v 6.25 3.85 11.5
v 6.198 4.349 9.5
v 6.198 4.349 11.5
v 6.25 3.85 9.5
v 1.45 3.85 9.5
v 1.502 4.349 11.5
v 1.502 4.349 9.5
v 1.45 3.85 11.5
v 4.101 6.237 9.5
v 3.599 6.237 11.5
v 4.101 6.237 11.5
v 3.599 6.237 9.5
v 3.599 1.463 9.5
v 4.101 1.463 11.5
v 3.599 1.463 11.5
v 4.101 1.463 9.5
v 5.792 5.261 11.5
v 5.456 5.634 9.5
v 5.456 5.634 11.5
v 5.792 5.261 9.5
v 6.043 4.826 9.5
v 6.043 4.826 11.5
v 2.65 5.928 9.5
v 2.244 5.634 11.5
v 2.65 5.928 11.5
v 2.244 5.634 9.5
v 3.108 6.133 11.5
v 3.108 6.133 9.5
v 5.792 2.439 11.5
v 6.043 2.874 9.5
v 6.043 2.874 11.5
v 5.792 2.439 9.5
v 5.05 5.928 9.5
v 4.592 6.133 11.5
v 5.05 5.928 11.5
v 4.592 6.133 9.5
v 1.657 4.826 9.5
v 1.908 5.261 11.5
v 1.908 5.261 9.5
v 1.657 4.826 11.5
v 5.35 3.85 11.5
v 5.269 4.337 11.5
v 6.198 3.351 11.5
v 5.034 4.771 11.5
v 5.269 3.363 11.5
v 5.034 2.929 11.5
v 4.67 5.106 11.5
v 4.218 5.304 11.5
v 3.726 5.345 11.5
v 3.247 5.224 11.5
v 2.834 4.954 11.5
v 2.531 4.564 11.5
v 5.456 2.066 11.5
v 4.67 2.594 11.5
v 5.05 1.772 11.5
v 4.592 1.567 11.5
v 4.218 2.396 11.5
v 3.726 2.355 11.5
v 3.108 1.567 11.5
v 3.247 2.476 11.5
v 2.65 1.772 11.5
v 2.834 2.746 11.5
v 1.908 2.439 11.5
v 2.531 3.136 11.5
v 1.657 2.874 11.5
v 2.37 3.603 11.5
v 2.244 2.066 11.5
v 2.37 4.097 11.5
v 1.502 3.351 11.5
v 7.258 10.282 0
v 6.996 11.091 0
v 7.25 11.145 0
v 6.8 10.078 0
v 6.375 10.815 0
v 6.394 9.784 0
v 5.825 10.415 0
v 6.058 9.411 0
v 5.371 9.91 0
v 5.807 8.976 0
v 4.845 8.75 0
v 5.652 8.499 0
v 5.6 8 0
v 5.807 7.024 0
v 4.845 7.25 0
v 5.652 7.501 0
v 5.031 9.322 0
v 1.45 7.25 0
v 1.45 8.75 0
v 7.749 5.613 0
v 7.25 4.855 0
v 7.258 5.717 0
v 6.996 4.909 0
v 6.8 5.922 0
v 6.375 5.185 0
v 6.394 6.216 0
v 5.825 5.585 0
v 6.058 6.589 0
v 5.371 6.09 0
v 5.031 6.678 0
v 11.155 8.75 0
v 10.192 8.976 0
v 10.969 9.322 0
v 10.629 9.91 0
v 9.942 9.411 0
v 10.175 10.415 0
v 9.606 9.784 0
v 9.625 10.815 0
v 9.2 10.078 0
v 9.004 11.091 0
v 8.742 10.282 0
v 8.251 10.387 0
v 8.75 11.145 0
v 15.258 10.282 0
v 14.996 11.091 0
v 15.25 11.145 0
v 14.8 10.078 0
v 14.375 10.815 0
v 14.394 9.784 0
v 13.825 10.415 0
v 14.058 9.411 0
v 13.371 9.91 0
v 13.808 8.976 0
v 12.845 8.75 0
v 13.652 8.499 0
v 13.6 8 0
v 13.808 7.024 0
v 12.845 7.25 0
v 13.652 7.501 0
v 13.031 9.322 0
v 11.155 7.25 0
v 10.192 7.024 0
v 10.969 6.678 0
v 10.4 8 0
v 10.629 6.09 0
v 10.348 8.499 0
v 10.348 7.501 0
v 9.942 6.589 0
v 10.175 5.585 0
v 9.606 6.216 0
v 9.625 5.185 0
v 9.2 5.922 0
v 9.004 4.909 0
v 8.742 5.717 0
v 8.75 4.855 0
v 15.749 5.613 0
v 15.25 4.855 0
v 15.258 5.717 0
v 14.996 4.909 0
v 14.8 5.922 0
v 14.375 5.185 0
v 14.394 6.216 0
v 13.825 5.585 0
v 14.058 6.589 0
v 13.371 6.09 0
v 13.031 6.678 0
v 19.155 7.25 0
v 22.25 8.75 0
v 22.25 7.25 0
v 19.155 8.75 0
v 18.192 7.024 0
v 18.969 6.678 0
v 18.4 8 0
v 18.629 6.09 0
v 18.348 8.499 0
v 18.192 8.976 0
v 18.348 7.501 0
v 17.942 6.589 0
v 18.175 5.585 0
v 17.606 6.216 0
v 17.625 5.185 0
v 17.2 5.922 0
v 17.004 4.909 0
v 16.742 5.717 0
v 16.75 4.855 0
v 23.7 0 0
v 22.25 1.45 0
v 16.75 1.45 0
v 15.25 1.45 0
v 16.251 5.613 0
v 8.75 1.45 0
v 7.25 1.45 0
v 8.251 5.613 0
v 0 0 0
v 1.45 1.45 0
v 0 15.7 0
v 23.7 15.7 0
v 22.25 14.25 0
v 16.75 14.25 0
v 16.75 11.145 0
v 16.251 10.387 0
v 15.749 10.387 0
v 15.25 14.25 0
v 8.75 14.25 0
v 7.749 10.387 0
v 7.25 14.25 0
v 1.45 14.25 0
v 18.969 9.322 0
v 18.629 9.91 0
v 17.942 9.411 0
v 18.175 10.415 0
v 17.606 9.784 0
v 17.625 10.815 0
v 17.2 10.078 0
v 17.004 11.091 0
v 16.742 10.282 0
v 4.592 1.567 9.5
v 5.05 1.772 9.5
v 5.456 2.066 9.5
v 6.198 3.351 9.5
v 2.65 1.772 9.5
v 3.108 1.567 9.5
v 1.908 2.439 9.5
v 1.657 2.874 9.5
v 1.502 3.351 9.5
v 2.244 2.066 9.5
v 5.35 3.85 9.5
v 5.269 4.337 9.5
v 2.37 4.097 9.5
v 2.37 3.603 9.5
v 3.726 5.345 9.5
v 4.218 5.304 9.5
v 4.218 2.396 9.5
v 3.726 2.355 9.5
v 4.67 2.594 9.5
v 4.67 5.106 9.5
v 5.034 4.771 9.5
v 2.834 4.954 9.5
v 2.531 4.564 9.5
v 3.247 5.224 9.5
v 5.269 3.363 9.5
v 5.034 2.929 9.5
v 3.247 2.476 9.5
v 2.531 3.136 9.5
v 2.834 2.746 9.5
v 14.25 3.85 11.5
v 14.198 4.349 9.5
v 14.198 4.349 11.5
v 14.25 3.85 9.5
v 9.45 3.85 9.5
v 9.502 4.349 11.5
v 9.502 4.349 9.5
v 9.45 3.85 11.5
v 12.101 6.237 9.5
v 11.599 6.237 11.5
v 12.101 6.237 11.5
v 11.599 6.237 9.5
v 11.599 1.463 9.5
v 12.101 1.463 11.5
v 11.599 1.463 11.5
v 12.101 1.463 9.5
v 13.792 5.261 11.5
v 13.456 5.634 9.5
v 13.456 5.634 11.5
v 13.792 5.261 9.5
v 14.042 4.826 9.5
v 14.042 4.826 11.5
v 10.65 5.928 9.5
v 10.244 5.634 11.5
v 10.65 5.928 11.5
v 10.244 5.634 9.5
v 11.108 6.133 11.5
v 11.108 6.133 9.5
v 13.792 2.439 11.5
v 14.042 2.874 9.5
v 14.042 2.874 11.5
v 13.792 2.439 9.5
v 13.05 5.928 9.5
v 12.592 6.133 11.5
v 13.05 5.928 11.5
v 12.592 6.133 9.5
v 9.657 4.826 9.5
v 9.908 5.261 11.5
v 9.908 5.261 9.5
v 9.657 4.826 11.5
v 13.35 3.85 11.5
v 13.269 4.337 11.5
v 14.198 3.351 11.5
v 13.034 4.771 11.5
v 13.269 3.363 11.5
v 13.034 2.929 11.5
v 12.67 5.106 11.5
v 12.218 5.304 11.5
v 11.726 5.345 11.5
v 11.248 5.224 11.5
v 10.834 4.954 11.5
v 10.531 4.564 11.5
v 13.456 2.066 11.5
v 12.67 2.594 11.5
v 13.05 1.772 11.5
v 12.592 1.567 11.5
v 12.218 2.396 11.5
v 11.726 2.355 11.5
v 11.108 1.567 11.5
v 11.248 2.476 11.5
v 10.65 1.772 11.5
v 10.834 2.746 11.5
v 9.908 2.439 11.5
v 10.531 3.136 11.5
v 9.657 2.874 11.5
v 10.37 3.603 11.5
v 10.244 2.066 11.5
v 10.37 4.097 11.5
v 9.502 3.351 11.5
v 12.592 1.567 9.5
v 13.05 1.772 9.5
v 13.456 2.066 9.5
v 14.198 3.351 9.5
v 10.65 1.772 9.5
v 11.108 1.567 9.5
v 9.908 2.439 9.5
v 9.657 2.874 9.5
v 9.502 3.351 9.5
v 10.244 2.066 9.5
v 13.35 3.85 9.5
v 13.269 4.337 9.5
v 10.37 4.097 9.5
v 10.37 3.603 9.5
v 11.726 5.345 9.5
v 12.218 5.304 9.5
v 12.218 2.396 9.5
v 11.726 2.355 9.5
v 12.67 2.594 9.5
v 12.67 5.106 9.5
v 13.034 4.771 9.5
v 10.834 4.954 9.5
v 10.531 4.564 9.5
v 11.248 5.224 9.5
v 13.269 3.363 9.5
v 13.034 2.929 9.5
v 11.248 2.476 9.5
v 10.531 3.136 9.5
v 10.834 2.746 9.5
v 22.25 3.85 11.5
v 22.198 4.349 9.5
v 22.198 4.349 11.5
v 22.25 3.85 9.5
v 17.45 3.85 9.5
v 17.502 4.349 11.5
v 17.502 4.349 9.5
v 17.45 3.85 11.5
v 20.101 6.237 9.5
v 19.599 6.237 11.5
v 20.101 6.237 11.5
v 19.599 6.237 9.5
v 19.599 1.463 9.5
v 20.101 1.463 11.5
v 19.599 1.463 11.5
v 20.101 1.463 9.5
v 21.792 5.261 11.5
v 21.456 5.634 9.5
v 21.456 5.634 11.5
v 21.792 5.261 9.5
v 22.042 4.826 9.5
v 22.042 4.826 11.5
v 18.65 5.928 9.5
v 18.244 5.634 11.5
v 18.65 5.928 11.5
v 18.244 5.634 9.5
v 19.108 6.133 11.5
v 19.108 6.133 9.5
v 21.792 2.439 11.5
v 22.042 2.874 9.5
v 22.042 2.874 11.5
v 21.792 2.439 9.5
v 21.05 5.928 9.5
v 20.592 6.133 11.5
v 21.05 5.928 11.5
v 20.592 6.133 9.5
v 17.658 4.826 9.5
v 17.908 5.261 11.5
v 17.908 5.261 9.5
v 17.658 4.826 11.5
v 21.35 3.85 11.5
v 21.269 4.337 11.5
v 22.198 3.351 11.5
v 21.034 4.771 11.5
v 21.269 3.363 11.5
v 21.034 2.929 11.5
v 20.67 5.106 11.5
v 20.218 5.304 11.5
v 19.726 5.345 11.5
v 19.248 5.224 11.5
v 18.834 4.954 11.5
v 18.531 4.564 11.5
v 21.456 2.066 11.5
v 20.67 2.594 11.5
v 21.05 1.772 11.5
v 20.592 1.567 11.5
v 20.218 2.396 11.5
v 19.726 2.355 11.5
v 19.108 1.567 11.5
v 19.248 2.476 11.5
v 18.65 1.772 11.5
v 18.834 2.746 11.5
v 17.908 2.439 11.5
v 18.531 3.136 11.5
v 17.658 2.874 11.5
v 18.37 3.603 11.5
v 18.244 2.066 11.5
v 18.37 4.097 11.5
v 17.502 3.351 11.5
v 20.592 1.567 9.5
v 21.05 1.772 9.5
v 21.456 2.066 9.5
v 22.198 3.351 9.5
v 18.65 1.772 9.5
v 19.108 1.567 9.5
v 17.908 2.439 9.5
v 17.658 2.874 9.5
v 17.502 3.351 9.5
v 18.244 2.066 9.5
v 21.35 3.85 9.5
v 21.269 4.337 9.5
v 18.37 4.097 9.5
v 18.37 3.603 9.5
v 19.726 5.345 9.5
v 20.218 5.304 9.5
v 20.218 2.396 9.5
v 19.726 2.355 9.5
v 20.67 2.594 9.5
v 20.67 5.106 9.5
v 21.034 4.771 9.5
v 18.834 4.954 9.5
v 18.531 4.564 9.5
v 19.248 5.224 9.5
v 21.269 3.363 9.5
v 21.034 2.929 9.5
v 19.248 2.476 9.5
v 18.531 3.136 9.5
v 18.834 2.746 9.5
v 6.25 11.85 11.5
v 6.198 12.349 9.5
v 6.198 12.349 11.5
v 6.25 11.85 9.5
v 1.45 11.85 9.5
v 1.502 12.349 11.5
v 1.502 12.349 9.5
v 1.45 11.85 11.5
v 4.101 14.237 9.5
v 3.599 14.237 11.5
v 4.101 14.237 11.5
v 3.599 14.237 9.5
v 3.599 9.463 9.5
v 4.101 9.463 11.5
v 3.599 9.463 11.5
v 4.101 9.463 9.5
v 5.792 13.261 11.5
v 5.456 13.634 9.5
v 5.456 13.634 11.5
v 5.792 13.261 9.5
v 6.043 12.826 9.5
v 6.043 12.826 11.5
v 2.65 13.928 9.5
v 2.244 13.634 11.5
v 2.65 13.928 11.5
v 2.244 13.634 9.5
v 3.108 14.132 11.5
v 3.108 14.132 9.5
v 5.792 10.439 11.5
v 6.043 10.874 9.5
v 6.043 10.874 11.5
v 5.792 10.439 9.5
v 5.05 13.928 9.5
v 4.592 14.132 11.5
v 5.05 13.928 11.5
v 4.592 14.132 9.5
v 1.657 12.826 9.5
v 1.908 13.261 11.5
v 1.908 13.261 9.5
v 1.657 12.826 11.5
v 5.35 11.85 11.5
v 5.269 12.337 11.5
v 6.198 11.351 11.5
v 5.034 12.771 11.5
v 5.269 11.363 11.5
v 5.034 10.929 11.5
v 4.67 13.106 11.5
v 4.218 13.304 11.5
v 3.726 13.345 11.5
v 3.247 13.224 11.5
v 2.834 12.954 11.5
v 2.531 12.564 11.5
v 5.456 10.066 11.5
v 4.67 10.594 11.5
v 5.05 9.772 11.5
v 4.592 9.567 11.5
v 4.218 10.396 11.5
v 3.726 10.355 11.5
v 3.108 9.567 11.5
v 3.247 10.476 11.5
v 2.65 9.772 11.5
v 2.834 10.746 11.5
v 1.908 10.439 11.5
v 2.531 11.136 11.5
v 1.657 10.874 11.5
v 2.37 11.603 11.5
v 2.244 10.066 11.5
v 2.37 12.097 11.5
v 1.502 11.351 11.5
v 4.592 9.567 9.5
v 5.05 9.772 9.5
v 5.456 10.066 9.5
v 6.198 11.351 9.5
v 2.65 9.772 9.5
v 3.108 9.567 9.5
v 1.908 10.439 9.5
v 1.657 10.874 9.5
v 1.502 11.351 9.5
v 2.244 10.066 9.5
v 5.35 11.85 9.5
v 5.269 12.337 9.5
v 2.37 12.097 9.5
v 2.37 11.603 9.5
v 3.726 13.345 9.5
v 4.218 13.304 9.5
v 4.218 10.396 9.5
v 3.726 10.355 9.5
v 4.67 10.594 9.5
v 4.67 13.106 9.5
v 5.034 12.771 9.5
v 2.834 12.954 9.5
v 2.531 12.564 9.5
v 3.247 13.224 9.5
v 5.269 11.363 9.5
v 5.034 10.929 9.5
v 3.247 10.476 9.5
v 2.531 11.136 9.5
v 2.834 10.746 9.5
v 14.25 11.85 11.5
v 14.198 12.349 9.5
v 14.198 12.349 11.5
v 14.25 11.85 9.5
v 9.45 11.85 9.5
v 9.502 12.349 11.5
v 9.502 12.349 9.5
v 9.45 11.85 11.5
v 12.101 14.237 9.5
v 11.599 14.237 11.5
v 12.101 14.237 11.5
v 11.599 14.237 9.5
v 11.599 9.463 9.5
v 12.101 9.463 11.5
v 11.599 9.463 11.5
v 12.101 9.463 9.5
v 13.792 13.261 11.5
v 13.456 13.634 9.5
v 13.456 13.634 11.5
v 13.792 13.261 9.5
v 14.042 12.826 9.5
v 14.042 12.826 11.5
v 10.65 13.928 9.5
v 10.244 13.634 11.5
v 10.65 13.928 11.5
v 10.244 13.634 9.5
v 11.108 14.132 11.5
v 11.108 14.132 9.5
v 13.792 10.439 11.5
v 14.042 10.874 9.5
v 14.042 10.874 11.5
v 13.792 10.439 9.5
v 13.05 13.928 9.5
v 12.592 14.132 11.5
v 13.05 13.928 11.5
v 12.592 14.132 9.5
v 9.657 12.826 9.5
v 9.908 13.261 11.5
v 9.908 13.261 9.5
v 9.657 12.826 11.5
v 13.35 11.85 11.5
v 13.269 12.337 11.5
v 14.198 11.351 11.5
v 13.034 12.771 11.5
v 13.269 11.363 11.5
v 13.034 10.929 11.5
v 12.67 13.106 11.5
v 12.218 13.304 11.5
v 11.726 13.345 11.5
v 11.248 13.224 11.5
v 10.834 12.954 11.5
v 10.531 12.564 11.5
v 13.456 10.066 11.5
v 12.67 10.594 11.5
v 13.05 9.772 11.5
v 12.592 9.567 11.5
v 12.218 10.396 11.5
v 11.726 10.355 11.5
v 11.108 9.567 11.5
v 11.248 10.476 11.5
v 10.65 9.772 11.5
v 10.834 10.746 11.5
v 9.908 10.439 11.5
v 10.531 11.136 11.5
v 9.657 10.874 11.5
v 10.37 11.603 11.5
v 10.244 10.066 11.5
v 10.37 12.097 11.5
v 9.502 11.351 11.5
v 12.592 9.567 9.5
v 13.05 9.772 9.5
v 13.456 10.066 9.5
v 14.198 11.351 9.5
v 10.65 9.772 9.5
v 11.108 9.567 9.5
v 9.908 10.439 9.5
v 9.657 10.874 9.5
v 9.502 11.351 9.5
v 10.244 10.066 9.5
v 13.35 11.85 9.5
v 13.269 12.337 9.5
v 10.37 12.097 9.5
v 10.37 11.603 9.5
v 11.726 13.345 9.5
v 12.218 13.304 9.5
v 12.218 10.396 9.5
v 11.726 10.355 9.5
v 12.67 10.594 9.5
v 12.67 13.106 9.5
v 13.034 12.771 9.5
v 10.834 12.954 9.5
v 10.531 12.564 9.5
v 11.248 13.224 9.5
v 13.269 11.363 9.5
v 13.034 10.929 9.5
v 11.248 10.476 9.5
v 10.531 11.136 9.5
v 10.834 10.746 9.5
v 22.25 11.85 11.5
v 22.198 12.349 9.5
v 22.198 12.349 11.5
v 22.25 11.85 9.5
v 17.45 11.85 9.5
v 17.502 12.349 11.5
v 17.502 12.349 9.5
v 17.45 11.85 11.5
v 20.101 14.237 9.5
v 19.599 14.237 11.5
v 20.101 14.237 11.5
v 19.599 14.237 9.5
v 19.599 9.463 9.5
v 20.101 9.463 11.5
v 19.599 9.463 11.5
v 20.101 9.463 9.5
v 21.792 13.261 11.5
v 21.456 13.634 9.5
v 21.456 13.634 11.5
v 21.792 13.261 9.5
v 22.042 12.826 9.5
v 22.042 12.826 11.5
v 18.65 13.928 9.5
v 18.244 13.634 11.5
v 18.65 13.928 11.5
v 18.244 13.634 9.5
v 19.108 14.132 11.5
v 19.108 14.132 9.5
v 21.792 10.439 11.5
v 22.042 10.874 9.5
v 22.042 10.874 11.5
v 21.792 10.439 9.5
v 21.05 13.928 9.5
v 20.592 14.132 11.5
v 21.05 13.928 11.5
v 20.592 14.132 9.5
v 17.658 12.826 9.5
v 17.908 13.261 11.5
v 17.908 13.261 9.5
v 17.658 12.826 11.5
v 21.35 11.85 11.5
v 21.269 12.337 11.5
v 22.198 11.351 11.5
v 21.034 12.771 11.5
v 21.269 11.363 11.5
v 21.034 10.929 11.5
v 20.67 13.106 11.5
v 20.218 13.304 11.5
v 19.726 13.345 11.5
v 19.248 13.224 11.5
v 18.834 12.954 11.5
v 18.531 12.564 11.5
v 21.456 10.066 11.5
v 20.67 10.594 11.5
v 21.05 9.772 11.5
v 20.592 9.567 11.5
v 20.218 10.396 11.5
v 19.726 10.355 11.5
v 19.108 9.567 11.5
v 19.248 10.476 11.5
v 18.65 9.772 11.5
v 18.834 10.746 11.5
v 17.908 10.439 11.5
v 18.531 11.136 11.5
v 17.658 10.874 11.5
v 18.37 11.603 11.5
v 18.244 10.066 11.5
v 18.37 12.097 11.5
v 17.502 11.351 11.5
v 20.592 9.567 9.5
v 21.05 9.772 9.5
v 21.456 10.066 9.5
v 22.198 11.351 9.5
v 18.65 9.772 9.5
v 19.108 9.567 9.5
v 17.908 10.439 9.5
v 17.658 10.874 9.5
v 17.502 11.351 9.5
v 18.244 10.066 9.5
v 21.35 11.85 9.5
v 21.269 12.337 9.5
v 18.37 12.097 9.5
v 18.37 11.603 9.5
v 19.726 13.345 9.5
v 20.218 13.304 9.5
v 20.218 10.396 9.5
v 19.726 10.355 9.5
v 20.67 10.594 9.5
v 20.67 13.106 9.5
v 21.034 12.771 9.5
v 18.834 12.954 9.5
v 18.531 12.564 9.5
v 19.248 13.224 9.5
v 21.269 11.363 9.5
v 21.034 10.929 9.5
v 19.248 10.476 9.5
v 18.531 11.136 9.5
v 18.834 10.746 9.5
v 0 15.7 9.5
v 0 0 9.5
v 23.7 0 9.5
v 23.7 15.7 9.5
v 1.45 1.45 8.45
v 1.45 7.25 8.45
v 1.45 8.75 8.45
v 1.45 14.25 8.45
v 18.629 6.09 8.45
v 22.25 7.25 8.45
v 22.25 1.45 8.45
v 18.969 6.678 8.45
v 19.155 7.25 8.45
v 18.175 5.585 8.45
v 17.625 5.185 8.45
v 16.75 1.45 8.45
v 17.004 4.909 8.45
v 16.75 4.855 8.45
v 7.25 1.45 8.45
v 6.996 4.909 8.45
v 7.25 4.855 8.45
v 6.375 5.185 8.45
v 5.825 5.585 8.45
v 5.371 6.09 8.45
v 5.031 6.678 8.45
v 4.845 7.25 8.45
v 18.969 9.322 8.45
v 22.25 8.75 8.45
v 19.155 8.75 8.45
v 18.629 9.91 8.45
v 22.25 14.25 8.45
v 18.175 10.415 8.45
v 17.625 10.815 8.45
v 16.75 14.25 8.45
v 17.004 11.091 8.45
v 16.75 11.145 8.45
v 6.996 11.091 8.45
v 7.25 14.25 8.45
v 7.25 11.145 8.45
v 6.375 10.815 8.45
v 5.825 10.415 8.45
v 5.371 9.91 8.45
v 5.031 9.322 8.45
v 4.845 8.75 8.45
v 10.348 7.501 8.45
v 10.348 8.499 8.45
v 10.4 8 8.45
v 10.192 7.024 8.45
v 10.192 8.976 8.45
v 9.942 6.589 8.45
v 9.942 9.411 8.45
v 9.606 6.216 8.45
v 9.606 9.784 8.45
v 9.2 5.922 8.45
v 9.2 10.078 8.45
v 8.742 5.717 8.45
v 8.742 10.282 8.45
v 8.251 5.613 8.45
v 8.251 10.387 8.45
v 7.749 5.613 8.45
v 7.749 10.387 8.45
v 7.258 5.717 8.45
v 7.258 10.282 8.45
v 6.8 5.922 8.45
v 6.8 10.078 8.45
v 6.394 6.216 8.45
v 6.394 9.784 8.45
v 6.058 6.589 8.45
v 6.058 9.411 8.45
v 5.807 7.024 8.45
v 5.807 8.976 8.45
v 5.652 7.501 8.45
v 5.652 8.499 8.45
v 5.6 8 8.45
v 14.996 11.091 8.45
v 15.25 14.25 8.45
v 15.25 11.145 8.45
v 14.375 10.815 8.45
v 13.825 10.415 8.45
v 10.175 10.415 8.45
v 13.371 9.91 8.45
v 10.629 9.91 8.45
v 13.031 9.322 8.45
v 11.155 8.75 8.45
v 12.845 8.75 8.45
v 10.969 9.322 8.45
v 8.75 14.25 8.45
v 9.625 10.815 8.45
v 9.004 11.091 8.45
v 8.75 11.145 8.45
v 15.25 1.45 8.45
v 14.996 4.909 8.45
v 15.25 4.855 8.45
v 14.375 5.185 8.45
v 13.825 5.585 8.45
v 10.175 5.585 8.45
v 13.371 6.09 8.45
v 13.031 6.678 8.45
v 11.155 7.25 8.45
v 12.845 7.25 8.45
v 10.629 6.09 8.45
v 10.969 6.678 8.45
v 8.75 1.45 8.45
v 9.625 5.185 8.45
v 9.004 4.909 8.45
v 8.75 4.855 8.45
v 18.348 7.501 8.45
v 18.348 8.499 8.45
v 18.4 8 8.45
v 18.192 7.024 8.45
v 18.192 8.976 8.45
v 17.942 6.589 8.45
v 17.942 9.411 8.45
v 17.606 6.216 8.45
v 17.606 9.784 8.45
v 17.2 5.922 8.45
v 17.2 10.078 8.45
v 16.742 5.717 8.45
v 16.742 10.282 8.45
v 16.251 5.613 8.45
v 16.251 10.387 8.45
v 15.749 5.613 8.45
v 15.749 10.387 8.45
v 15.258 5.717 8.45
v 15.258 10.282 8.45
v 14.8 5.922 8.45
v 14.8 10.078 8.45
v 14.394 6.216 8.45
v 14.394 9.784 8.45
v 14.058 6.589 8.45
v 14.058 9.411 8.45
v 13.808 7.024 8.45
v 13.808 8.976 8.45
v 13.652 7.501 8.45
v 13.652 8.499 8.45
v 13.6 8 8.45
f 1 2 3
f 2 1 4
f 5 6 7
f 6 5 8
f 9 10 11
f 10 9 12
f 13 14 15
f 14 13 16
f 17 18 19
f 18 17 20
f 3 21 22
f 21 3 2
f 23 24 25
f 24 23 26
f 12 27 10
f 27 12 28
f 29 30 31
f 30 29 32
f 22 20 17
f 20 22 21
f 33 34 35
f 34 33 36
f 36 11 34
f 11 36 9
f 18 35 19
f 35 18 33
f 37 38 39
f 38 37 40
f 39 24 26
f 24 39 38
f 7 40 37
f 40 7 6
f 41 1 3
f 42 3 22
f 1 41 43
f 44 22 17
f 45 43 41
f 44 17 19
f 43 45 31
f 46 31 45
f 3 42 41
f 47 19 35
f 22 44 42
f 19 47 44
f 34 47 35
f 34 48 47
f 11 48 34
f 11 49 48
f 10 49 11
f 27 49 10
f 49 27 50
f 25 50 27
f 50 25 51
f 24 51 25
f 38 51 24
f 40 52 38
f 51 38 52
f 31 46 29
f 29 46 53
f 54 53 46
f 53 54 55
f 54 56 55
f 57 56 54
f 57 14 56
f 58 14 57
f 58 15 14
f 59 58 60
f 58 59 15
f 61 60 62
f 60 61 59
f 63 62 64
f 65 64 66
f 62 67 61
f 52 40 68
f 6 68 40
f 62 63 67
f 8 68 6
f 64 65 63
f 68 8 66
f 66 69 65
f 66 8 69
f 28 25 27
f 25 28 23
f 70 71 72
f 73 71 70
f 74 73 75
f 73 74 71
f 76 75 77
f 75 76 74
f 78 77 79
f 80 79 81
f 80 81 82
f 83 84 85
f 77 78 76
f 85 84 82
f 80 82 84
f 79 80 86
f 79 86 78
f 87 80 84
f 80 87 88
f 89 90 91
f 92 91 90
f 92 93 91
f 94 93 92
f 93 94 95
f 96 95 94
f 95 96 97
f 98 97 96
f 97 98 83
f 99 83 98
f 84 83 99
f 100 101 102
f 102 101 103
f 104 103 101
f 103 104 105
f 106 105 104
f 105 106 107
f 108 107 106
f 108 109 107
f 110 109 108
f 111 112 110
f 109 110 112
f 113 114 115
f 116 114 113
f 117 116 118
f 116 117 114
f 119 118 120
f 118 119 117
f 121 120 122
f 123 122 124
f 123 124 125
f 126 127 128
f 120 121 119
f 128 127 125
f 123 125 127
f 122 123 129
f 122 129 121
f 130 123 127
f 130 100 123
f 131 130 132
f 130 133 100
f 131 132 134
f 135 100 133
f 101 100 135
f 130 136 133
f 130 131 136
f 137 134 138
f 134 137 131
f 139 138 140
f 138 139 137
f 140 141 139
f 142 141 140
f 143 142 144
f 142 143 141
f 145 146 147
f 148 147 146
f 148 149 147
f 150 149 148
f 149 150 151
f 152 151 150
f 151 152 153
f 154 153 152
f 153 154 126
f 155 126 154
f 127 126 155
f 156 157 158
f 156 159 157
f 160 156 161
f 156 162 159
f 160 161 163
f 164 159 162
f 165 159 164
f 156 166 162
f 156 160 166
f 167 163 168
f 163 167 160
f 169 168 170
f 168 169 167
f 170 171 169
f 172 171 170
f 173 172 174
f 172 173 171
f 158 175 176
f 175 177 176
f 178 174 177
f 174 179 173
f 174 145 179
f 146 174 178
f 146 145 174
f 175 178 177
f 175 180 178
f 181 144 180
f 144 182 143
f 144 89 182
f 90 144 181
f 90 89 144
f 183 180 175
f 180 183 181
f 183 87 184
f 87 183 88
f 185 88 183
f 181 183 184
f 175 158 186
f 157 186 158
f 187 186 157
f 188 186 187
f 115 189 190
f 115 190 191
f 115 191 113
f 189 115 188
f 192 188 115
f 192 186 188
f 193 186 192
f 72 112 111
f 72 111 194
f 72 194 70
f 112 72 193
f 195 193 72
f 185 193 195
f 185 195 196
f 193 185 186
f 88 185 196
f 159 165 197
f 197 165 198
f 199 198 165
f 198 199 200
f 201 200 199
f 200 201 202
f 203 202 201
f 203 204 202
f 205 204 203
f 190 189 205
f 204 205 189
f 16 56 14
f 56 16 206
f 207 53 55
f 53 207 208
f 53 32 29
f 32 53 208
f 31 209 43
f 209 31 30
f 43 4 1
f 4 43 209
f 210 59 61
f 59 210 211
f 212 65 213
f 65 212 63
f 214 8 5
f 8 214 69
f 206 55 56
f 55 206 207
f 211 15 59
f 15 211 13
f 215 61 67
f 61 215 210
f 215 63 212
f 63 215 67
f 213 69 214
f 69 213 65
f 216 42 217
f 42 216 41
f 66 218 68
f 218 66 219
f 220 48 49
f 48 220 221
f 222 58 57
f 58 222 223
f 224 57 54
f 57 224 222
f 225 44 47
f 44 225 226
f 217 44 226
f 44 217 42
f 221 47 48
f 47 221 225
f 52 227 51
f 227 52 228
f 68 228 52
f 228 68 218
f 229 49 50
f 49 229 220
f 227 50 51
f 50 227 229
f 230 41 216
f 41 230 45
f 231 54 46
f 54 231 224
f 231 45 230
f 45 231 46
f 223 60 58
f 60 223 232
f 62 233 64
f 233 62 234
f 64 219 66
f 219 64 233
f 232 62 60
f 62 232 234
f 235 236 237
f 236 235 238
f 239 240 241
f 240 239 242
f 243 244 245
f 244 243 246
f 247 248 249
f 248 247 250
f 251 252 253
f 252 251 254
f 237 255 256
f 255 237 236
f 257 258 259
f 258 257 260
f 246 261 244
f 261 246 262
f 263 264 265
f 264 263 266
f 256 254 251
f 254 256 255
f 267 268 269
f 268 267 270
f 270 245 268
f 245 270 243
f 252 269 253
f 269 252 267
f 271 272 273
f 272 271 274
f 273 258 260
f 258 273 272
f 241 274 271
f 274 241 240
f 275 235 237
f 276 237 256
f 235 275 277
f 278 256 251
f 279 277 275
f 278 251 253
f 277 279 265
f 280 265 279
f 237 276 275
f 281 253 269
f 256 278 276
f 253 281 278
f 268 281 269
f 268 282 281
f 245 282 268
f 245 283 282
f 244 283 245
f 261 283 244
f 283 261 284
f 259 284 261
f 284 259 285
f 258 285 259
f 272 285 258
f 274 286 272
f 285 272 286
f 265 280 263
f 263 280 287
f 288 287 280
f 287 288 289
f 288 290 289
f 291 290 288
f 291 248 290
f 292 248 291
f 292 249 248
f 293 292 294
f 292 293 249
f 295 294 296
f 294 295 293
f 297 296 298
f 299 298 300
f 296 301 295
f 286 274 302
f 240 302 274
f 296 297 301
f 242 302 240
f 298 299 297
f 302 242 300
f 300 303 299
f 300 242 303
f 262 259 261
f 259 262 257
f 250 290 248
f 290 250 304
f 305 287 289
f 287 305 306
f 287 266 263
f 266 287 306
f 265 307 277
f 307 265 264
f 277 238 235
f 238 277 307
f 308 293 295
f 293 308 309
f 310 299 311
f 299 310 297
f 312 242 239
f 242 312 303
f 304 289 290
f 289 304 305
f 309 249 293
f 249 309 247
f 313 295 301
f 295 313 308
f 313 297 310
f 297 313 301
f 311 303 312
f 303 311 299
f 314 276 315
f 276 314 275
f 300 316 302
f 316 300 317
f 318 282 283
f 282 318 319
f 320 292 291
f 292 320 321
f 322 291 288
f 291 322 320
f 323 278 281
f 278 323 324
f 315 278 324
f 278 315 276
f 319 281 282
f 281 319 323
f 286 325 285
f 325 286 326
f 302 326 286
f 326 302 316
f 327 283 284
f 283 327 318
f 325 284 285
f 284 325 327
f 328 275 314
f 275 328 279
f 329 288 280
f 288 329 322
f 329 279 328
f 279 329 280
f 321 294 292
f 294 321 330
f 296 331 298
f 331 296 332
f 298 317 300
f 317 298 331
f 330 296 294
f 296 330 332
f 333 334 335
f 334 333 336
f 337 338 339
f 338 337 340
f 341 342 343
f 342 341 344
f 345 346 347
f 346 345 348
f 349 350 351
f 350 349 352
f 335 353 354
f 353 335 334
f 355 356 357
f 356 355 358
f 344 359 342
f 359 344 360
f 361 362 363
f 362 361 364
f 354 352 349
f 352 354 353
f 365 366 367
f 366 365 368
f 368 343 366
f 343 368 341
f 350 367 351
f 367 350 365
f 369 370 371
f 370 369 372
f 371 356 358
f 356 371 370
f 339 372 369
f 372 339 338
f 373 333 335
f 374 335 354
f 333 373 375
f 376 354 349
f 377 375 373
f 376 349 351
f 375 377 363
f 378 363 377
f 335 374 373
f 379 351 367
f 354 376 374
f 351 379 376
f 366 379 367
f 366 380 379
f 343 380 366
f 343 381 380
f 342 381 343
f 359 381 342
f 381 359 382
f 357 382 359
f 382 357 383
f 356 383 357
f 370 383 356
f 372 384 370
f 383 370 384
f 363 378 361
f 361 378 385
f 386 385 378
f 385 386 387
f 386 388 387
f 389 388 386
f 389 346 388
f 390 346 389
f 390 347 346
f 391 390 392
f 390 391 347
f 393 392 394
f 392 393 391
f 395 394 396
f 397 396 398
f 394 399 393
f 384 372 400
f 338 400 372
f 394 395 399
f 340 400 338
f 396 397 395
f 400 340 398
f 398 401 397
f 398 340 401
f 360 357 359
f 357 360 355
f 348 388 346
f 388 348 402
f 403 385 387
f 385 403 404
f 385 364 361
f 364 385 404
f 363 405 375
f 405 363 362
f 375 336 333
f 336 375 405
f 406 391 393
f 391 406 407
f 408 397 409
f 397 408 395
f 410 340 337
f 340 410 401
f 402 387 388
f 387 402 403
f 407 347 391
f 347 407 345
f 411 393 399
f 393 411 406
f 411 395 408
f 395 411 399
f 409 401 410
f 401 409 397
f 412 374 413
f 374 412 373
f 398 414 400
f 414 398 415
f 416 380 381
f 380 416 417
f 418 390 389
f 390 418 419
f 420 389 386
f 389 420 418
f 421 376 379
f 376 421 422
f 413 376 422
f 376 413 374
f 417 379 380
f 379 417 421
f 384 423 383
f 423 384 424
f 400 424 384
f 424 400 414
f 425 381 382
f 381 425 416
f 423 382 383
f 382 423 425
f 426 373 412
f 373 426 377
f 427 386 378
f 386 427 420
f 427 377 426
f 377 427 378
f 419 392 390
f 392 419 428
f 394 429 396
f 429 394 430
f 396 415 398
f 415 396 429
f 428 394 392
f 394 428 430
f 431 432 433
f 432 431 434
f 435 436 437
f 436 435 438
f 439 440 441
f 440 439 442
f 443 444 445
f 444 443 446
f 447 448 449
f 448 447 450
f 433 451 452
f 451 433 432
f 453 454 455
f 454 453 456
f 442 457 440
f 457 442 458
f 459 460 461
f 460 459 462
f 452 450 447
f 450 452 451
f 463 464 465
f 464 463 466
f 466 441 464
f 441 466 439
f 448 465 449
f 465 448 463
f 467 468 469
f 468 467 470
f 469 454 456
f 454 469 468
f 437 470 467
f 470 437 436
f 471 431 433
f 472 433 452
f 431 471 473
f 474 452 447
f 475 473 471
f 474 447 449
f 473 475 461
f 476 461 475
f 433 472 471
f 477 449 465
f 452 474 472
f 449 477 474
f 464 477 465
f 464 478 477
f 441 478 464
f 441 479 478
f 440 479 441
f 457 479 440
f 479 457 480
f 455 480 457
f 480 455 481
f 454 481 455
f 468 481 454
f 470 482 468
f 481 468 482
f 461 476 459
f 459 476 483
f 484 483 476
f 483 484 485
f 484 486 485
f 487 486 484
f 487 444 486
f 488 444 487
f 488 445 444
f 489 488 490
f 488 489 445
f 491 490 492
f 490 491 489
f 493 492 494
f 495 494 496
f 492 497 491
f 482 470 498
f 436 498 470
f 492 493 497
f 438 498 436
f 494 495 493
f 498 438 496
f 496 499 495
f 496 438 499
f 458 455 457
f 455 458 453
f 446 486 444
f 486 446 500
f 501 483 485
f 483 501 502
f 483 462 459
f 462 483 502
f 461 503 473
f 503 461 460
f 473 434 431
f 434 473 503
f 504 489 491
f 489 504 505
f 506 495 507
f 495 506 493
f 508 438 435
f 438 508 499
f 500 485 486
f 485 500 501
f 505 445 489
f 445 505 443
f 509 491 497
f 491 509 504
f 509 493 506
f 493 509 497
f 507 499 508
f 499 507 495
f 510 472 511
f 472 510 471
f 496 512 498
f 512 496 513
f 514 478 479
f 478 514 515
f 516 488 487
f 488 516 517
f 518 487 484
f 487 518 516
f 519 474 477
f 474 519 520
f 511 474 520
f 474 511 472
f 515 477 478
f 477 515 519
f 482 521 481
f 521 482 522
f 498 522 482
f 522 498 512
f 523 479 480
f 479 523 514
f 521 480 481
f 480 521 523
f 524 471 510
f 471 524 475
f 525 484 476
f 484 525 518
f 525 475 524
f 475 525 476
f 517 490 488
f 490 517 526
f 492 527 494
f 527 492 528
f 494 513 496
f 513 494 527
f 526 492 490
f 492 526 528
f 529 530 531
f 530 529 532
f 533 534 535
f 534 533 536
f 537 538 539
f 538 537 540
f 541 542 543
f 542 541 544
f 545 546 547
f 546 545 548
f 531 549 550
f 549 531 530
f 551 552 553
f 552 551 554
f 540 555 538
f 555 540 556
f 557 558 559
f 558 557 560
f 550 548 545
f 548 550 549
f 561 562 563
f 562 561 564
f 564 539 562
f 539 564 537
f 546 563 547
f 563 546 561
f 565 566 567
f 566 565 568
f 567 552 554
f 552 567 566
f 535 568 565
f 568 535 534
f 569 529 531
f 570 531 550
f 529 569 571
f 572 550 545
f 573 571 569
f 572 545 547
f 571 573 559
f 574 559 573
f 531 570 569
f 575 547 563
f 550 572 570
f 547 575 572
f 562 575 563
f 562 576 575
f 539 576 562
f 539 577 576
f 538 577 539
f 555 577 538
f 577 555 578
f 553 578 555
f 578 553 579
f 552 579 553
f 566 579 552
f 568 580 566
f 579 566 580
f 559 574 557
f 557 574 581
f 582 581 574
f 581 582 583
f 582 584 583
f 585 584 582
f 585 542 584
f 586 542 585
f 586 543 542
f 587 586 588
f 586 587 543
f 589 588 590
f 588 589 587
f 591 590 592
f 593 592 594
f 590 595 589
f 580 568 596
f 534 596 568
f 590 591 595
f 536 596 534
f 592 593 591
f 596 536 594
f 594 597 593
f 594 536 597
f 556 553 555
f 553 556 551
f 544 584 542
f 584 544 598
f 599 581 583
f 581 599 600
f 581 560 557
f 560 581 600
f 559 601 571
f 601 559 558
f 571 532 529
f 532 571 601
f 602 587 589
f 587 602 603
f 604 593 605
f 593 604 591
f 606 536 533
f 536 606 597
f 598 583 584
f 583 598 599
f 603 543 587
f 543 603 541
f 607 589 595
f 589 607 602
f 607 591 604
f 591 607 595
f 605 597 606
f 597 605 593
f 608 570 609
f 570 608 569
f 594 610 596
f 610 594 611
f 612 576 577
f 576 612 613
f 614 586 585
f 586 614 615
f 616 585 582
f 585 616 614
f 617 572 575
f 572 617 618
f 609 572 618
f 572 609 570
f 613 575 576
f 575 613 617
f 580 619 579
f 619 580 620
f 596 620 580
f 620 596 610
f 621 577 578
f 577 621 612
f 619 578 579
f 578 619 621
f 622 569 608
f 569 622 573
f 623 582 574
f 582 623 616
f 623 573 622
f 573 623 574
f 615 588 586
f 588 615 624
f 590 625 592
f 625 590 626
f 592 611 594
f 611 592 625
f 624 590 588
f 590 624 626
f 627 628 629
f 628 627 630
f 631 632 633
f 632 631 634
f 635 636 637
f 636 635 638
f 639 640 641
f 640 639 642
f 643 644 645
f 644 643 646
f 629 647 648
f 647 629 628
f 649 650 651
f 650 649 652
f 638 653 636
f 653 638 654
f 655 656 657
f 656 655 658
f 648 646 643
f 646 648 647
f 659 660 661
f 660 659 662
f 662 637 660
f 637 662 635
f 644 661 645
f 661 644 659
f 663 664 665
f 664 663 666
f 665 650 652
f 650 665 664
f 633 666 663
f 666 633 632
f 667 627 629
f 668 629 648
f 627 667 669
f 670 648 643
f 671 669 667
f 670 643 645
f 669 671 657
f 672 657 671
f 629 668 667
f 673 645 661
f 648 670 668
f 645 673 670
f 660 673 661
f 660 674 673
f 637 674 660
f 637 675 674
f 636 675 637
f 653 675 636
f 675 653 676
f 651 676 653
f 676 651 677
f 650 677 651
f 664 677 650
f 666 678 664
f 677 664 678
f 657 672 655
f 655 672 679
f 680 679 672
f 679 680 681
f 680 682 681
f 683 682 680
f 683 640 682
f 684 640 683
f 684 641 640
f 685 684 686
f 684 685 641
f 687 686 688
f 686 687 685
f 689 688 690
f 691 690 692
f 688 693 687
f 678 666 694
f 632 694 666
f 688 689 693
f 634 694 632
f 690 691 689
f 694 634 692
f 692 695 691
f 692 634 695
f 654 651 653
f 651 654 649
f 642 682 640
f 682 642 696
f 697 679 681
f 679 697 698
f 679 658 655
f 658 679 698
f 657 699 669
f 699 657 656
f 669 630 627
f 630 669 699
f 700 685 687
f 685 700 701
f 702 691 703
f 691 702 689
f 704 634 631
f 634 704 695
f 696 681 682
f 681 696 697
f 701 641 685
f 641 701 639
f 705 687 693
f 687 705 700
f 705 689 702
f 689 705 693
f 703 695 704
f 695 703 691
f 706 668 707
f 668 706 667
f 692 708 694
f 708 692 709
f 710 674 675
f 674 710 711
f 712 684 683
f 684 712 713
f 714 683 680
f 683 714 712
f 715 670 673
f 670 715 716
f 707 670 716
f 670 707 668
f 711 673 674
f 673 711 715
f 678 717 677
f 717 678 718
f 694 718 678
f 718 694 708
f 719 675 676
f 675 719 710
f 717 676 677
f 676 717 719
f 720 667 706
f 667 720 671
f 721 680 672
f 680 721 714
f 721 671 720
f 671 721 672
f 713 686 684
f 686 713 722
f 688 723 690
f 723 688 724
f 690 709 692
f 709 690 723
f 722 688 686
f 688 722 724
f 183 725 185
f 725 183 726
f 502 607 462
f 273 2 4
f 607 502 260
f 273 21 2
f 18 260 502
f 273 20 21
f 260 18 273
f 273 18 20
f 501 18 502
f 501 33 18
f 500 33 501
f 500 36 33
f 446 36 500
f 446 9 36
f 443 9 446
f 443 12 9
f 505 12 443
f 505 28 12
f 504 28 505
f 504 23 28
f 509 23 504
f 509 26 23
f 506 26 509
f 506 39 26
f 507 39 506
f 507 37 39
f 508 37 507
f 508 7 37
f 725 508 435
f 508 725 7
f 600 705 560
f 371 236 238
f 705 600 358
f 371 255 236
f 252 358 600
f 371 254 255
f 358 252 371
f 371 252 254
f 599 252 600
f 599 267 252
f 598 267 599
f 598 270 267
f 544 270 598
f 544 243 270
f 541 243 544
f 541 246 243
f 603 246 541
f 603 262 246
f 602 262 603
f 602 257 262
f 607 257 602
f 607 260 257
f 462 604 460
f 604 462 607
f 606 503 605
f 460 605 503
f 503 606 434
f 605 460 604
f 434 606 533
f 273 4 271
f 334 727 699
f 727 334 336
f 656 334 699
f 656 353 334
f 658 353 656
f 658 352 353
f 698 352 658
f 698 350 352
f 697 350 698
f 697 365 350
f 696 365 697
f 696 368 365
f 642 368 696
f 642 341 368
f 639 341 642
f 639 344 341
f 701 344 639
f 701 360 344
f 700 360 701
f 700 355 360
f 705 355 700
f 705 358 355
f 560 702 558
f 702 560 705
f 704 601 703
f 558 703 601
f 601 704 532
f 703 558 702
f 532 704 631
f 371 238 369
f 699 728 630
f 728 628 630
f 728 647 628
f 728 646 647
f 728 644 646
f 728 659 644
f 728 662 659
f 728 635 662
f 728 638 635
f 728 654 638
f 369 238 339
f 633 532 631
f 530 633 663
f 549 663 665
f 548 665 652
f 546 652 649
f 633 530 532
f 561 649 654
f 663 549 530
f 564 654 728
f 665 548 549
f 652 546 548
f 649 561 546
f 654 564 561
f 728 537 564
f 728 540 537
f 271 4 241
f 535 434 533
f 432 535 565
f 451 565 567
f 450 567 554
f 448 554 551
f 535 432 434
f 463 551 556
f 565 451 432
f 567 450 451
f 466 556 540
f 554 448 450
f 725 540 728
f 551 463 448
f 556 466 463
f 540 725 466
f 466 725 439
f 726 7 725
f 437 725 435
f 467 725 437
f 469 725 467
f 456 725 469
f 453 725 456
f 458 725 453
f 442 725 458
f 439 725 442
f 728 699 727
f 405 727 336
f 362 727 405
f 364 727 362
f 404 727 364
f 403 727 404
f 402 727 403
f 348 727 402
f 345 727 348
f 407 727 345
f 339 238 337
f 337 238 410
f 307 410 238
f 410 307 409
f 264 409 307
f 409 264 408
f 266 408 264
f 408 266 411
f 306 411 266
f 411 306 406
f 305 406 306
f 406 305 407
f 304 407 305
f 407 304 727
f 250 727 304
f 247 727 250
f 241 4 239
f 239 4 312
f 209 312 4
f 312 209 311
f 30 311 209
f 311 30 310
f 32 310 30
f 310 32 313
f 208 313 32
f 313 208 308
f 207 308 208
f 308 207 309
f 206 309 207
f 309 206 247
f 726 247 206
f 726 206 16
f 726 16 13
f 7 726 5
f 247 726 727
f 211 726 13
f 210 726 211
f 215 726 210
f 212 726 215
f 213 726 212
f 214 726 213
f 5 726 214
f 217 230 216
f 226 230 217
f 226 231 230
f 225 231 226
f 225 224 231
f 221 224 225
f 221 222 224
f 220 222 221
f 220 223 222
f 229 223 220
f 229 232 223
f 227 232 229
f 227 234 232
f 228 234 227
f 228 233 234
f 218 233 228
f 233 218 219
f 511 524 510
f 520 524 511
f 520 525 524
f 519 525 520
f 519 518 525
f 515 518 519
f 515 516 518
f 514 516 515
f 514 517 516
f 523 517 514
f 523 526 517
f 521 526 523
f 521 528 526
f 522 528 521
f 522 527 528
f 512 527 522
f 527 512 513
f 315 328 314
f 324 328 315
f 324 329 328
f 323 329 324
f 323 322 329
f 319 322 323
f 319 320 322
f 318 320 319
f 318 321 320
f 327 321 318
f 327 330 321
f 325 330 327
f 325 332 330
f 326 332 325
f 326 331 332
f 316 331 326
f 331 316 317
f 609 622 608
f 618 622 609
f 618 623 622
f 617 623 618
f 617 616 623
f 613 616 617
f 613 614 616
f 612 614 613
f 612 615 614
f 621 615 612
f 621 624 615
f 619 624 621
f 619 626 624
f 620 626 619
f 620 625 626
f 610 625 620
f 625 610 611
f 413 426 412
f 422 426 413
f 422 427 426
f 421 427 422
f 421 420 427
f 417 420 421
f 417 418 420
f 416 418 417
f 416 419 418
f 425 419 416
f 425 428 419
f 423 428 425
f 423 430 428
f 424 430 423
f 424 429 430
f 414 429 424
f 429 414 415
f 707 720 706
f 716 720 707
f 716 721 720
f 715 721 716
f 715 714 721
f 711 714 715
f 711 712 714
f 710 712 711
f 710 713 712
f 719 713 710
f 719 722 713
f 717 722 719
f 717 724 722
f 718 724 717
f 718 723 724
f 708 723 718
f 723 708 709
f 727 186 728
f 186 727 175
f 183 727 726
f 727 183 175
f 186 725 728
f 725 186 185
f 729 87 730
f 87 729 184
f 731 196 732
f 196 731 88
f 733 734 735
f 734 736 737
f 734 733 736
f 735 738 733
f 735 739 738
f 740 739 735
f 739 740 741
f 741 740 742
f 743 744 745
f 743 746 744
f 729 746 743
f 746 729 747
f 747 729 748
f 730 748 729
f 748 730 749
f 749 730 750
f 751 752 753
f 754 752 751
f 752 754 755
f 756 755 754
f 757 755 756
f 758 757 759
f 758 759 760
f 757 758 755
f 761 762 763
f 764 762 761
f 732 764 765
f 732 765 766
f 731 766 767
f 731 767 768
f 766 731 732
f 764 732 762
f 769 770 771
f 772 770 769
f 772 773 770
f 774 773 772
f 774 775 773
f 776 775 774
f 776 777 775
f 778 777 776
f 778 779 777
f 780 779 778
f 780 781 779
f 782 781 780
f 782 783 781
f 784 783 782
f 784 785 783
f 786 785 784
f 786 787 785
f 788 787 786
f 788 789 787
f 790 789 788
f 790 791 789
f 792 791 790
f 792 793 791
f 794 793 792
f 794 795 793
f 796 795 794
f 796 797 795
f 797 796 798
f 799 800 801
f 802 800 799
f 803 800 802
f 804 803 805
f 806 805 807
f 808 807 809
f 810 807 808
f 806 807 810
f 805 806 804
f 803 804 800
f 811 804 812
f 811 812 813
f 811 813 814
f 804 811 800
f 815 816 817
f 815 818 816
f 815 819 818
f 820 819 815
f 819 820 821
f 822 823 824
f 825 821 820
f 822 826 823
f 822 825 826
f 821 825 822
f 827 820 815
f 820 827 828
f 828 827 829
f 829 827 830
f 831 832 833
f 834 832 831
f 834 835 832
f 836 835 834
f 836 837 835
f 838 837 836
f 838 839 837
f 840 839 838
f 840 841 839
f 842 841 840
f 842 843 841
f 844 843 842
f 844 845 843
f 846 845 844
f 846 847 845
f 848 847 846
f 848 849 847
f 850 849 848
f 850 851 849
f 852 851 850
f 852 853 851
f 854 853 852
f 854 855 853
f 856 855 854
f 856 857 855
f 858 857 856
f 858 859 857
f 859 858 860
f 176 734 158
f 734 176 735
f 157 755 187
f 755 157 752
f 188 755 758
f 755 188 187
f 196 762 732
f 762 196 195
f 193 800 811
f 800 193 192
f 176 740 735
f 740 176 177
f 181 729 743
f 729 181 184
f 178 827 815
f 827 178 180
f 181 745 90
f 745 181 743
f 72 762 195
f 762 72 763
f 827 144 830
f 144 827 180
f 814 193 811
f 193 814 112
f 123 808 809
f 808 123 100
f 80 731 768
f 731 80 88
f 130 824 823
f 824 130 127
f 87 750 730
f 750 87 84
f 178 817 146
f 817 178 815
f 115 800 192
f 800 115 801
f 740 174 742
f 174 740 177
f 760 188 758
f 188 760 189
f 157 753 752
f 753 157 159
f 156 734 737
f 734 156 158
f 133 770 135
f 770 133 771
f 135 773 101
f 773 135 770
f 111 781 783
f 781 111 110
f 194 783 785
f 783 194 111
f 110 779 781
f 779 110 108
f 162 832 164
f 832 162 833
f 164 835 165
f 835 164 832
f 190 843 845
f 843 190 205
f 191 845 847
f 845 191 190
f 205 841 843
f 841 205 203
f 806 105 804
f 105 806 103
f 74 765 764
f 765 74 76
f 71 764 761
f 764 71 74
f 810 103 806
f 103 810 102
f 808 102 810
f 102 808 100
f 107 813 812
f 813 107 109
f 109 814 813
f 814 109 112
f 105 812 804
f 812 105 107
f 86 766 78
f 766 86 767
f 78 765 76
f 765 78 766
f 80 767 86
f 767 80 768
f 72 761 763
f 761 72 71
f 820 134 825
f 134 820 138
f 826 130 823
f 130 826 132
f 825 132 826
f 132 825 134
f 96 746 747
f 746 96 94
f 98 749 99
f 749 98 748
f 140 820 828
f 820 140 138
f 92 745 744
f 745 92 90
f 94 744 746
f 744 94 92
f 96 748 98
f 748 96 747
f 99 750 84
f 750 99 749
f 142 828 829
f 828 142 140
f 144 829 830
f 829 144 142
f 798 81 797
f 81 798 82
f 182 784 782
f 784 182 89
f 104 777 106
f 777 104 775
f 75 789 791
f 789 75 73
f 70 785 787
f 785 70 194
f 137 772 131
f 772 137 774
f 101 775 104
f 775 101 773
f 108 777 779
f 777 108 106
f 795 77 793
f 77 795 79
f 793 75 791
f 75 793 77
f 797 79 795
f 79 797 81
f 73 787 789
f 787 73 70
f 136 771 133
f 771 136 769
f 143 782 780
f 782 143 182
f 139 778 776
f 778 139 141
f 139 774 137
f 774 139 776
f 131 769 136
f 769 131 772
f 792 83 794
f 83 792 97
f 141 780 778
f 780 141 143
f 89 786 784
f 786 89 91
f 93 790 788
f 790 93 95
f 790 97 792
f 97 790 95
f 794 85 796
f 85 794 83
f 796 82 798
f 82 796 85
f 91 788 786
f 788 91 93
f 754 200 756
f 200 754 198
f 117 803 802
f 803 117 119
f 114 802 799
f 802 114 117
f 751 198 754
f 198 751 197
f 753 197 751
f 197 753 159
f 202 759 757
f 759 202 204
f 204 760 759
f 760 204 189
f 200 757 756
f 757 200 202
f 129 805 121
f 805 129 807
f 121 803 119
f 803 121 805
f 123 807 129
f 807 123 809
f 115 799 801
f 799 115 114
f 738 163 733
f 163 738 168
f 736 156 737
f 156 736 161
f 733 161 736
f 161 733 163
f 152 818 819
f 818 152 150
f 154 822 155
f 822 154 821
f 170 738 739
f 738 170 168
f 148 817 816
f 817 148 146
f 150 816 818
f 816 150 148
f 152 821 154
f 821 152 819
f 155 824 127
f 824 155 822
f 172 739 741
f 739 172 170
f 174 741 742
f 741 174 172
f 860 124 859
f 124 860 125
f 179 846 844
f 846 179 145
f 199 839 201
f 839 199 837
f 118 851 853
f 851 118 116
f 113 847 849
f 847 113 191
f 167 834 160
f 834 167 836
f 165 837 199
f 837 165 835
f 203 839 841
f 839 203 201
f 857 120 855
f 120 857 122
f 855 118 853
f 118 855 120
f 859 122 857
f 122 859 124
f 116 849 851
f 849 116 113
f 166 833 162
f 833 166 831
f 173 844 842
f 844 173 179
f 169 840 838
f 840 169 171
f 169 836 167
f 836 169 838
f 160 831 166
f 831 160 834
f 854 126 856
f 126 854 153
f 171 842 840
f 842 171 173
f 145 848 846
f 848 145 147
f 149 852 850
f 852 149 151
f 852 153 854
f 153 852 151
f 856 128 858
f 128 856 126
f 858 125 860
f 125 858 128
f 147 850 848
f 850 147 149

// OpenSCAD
use <MCAD/lego_compatibility.scad>;

block(2,3,1,axle_hole=false,circular_hole=false,reinforcement=true,hollow_knob=true,flat_top=false,solid_bottom=false);
